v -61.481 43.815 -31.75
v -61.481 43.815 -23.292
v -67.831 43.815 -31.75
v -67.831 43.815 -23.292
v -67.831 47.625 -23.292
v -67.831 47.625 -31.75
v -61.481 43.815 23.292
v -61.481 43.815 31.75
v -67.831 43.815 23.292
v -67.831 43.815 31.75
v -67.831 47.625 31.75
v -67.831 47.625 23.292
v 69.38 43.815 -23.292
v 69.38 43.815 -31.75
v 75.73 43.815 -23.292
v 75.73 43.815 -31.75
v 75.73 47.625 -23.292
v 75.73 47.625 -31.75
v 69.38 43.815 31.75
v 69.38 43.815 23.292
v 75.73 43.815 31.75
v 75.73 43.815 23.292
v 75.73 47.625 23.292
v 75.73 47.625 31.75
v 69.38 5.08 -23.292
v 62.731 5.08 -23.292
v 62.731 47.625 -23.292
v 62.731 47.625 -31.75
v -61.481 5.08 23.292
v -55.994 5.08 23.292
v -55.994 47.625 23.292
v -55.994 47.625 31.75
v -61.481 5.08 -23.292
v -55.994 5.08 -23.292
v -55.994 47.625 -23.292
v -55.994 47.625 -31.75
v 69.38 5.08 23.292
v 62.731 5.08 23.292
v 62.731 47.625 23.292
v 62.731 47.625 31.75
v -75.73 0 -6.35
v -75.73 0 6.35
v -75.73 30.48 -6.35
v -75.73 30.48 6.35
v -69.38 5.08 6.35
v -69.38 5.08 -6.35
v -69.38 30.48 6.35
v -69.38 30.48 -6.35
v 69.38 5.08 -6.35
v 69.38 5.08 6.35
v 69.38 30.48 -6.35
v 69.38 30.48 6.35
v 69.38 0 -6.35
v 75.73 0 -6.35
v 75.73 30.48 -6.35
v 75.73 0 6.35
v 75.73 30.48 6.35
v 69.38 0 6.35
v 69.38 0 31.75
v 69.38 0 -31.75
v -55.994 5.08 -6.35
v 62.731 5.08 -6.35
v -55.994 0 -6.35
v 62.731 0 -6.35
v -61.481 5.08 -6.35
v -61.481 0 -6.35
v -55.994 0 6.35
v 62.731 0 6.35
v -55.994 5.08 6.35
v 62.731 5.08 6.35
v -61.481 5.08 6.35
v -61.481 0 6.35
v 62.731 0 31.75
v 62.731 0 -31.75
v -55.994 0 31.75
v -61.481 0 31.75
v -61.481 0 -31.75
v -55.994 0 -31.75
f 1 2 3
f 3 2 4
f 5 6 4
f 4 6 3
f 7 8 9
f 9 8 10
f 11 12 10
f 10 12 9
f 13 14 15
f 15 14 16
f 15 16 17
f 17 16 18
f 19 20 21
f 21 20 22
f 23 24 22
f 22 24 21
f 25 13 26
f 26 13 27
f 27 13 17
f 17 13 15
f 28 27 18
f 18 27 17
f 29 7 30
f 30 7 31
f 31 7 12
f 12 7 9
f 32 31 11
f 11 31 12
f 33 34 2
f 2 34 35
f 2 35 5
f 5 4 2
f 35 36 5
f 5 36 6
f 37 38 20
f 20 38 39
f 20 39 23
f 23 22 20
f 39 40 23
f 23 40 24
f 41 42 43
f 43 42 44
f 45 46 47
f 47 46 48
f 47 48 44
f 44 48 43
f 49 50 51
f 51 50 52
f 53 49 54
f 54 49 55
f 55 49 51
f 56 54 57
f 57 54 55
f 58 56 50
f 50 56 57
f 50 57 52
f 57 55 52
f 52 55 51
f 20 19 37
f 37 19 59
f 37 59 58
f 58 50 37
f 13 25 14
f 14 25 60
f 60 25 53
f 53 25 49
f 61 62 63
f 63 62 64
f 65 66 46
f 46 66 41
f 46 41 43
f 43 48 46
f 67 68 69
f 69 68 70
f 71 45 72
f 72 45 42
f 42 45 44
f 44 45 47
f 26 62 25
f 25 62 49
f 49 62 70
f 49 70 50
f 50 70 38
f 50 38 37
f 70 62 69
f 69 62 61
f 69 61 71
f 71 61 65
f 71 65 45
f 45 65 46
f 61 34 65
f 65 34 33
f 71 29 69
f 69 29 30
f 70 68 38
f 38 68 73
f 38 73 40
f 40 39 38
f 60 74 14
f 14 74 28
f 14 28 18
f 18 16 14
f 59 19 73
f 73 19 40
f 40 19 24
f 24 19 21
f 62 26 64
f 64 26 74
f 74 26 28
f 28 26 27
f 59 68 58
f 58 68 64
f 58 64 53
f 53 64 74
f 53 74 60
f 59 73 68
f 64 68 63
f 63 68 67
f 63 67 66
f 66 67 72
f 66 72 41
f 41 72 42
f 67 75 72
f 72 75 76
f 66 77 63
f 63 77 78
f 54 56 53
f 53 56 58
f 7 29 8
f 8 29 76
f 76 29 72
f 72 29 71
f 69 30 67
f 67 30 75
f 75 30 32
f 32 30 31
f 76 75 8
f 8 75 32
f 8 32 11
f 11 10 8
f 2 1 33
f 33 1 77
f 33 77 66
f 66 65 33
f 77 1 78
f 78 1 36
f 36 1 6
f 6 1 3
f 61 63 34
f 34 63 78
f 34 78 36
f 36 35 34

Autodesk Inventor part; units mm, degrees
ref_plane "YZ Plane" through (0, 0, 0) normal (1, 0, 0) x (0, 1, 0)
ref_plane "XZ Plane" through (0, 0, 0) normal (0, 1, 0) x (-1, 0, 0)
ref_plane "XY Plane" through (0, 0, 0) normal (0, 0, 1) x (1, 0, 0)
sketch "Sketch1" plane through (0, 0, 0) normal (0, 1, 0) x (-1, 0, 0)
  line L0 (69.3801, 23.2918) -> (-69.3801, 23.2918)
  line L1 (-69.3801, 23.2918) -> (-69.3801, -23.2918)
  line L2 (-69.3801, -23.2918) -> (69.3801, -23.2918)
  line L3 (69.3801, -23.2918) -> (69.3801, 23.2918)
  line L4 (69.3801, 23.2918) -> (-69.3801, -23.2918) construction
  line L5 (-69.3801, 23.2918) -> (69.3801, -23.2918) construction
  line L6 (69.3801, -6.35) -> (-69.3801, -6.35)
  line L7 (-69.3801, -6.35) -> (-69.3801, 6.35)
  line L8 (-69.3801, 6.35) -> (69.3801, 6.35)
  line L9 (69.3801, 6.35) -> (69.3801, -6.35)
  line L10 (69.3801, -6.35) -> (-69.3801, 6.35) construction
  line L11 (-69.3801, -6.35) -> (69.3801, 6.35) construction
  line L12 (-62.7307, -31.75) -> (-69.3801, -31.75)
  line L13 (-69.3801, -31.75) -> (-69.3801, 31.75)
  line L14 (-69.3801, 31.75) -> (-62.7307, 31.75)
  line L15 (-62.7307, 31.75) -> (-62.7307, -31.75)
  line L16 (-62.7307, -31.75) -> (-69.3801, 31.75) construction
  line L17 (-69.3801, -31.75) -> (-62.7307, 31.75) construction
  line L18 (-69.3801, 0) -> (61.4807, 0)
  line L19 (61.4807, 0) -> (-69.3801, 0)
  line L20 (55.9943, 31.75) -> (55.9943, -31.75)
  line L21 (55.9943, -31.75) -> (61.4807, -31.75)
  line L22 (61.4807, -31.75) -> (61.4807, 31.75)
  line L23 (61.4807, 31.75) -> (55.9943, 31.75)
  line L24 (55.9943, 31.75) -> (61.4807, -31.75) construction
  line L25 (55.9943, -31.75) -> (61.4807, 31.75) construction
  point P0 (0, 0)
  point P1 (-66.0554, 0)
  point P2 (58.7375, 0)
  dimension "d0" = 138.7602
  dimension "d1" = 46.5836
  dimension "d2" = 12.7
  dimension "d3" = 130.8608
extrude "Extrusion1" add sketch "Sketch1" along normal blind 5.08 contours L22 L8 L20 L0 | L0 L20 L23 L22 | L3 L6 L22 L8 | L22 L18 L20 L8 | L15 L8 L1 L0 | L0 L13 L14 L15 | L20 L18 L15 L8 | L22 L6 L20 L18 | L22 L2 L20 L6 | L15 L18 L1 L8 | L20 L6 L15 L18 | L22 L21 L20 L2 | L15 L6 L1 L18 | L15 L2 L1 L6 | L15 L12 L13 L2
sketch "Sketch2" plane through (0, 5.08, 0) normal (0, 1, 0) x (1, 0, 0)
  point P0 (0, 0)
sketch "Sketch3" plane through (0, 0, 0) normal (0, -1, 0) x (1, 0, 0)
  line L0 (-69.3801, 6.35) -> (-61.4807, 6.35) projected
  line L1 (-69.3801, 6.35) -> (-75.7301, 6.35)
  line L2 (-75.7301, 6.35) -> (-75.7301, -6.35)
  line L3 (-75.7301, -6.35) -> (-69.3801, -6.35)
  line L4 (-69.3801, -6.35) -> (-69.3801, 6.35)
  line L5 (69.3801, 31.75) -> (69.3801, -31.75) projected
  line L6 (69.3801, 6.35) -> (75.7301, 6.35)
  line L7 (75.7301, 6.35) -> (75.7301, -6.35)
  line L8 (75.7301, -6.35) -> (69.3801, -6.35)
  line L9 (69.3801, -6.35) -> (69.3801, 6.35)
  point P0 (0, 0)
  dimension "d6" = 6.35
  dimension "d7" = 6.35
extrude "Extrusion2" add sketch "Sketch3" against normal blind 30.48
sketch "Sketch4" plane through (0, 5.08, 0) normal (0, 1, 0) x (1, 0, 0)
  line L0 (-69.3801, -23.2918) -> (69.3801, -23.2918)
  line L1 (69.3801, -23.2918) -> (69.3801, 23.2918)
  line L2 (69.3801, 23.2918) -> (-69.3801, 23.2918)
  line L3 (-69.3801, 23.2918) -> (-69.3801, -23.2918)
  line L4 (-69.3801, -23.2918) -> (69.3801, 23.2918) construction
  line L5 (69.3801, -23.2918) -> (-69.3801, 23.2918) construction
  line L6 (62.7307, 31.75) -> (62.7307, 6.35) projected
  line L7 (69.3801, 23.2918) -> (62.7307, 23.2918)
  line L8 (62.7307, 23.2918) -> (62.7307, 31.75)
  line L9 (62.7307, 31.75) -> (69.3801, 31.75)
  line L10 (69.3801, 31.75) -> (69.3801, 23.2918)
  line L11 (62.7307, -6.35) -> (62.7307, -31.75) projected
  line L12 (62.7307, -23.2918) -> (69.3801, -23.2918)
  line L13 (69.3801, -23.2918) -> (69.3801, -31.75)
  line L14 (69.3801, -31.75) -> (62.7307, -31.75)
  line L15 (62.7307, -31.75) -> (62.7307, -23.2918)
  line L16 (-61.4807, -31.75) -> (-55.9943, -31.75) projected
  line L17 (-61.4807, -6.35) -> (-61.4807, -31.75) projected
  line L18 (-55.9943, -31.75) -> (-61.4807, -31.75)
  line L19 (-61.4807, -31.75) -> (-61.4807, -23.2918)
  line L20 (-61.4807, -23.2918) -> (-55.9943, -23.2918)
  line L21 (-55.9943, -23.2918) -> (-55.9943, -31.75)
  line L22 (-61.4807, 31.75) -> (-61.4807, 6.35) projected
  line L23 (-55.9943, 31.75) -> (-61.4807, 31.75) projected
  line L24 (-61.4807, 23.2918) -> (-55.9943, 23.2918)
  line L25 (-55.9943, 23.2918) -> (-55.9943, 31.75)
  line L26 (-55.9943, 31.75) -> (-61.4807, 31.75)
  line L27 (-61.4807, 31.75) -> (-61.4807, 23.2918)
  point P0 (0, 0)
  dimension "d10" = 138.7602
  dimension "d11" = 46.5836
extrude "Extrusion3" add sketch "Sketch4" along normal blind 42.545 contours L0 L21 L16 L17 | L22 L23 L25 L2 | L0 L13 L14 L11 | L6 L9 L10 L2
sketch "Sketch5" plane through (69.3801, 0, -6.35) normal (1, 0, 0) x (0, 0, -1)
  line L0 (25.4, 47.625) -> (16.9418, 47.625) projected
  line L1 (25.4, 0) -> (25.4, 47.625) projected
  line L2 (16.9418, 47.625) -> (25.4, 47.625)
  line L3 (25.4, 47.625) -> (25.4, 43.815)
  line L4 (25.4, 43.815) -> (16.9418, 43.815)
  line L5 (16.9418, 43.815) -> (16.9418, 47.625)
  line L6 (-38.1, 0) -> (-38.1, 47.625) projected
  line L7 (-29.6418, 5.08) -> (-29.6418, 47.625) projected
  line L8 (-38.1, 47.625) -> (-29.6418, 47.625)
  line L9 (-29.6418, 47.625) -> (-29.6418, 43.815)
  line L10 (-29.6418, 43.815) -> (-38.1, 43.815)
  line L11 (-38.1, 43.815) -> (-38.1, 47.625)
  point P0 (-6.35, 0)
  dimension "d14" = 3.81
extrude "Extrusion4" add sketch "Sketch5" along normal blind 6.35
sketch "Sketch6" plane through (-61.4807, 0, -31.75) normal (-1, 0, 0) x (0, 0, 1)
  line L0 (0, 0) -> (0, 47.625) projected
  line L1 (8.4582, 5.08) -> (8.4582, 47.625) projected
  line L2 (0, 47.625) -> (8.4582, 47.625)
  line L3 (8.4582, 47.625) -> (8.4582, 43.815)
  line L4 (8.4582, 43.815) -> (0, 43.815)
  line L5 (0, 43.815) -> (0, 47.625)
  line L6 (55.0418, 5.08) -> (55.0418, 47.625) projected
  line L7 (63.5, 0) -> (63.5, 47.625) projected
  line L8 (55.0418, 47.625) -> (63.5, 47.625)
  line L9 (63.5, 47.625) -> (63.5, 43.815)
  line L10 (63.5, 43.815) -> (55.0418, 43.815)
  line L11 (55.0418, 43.815) -> (55.0418, 47.625)
  point P0 (31.75, 0)
  dimension "d17" = 3.81
extrude "Extrusion5" add sketch "Sketch6" along normal blind 6.35
properties part number "BatteryHanger"
